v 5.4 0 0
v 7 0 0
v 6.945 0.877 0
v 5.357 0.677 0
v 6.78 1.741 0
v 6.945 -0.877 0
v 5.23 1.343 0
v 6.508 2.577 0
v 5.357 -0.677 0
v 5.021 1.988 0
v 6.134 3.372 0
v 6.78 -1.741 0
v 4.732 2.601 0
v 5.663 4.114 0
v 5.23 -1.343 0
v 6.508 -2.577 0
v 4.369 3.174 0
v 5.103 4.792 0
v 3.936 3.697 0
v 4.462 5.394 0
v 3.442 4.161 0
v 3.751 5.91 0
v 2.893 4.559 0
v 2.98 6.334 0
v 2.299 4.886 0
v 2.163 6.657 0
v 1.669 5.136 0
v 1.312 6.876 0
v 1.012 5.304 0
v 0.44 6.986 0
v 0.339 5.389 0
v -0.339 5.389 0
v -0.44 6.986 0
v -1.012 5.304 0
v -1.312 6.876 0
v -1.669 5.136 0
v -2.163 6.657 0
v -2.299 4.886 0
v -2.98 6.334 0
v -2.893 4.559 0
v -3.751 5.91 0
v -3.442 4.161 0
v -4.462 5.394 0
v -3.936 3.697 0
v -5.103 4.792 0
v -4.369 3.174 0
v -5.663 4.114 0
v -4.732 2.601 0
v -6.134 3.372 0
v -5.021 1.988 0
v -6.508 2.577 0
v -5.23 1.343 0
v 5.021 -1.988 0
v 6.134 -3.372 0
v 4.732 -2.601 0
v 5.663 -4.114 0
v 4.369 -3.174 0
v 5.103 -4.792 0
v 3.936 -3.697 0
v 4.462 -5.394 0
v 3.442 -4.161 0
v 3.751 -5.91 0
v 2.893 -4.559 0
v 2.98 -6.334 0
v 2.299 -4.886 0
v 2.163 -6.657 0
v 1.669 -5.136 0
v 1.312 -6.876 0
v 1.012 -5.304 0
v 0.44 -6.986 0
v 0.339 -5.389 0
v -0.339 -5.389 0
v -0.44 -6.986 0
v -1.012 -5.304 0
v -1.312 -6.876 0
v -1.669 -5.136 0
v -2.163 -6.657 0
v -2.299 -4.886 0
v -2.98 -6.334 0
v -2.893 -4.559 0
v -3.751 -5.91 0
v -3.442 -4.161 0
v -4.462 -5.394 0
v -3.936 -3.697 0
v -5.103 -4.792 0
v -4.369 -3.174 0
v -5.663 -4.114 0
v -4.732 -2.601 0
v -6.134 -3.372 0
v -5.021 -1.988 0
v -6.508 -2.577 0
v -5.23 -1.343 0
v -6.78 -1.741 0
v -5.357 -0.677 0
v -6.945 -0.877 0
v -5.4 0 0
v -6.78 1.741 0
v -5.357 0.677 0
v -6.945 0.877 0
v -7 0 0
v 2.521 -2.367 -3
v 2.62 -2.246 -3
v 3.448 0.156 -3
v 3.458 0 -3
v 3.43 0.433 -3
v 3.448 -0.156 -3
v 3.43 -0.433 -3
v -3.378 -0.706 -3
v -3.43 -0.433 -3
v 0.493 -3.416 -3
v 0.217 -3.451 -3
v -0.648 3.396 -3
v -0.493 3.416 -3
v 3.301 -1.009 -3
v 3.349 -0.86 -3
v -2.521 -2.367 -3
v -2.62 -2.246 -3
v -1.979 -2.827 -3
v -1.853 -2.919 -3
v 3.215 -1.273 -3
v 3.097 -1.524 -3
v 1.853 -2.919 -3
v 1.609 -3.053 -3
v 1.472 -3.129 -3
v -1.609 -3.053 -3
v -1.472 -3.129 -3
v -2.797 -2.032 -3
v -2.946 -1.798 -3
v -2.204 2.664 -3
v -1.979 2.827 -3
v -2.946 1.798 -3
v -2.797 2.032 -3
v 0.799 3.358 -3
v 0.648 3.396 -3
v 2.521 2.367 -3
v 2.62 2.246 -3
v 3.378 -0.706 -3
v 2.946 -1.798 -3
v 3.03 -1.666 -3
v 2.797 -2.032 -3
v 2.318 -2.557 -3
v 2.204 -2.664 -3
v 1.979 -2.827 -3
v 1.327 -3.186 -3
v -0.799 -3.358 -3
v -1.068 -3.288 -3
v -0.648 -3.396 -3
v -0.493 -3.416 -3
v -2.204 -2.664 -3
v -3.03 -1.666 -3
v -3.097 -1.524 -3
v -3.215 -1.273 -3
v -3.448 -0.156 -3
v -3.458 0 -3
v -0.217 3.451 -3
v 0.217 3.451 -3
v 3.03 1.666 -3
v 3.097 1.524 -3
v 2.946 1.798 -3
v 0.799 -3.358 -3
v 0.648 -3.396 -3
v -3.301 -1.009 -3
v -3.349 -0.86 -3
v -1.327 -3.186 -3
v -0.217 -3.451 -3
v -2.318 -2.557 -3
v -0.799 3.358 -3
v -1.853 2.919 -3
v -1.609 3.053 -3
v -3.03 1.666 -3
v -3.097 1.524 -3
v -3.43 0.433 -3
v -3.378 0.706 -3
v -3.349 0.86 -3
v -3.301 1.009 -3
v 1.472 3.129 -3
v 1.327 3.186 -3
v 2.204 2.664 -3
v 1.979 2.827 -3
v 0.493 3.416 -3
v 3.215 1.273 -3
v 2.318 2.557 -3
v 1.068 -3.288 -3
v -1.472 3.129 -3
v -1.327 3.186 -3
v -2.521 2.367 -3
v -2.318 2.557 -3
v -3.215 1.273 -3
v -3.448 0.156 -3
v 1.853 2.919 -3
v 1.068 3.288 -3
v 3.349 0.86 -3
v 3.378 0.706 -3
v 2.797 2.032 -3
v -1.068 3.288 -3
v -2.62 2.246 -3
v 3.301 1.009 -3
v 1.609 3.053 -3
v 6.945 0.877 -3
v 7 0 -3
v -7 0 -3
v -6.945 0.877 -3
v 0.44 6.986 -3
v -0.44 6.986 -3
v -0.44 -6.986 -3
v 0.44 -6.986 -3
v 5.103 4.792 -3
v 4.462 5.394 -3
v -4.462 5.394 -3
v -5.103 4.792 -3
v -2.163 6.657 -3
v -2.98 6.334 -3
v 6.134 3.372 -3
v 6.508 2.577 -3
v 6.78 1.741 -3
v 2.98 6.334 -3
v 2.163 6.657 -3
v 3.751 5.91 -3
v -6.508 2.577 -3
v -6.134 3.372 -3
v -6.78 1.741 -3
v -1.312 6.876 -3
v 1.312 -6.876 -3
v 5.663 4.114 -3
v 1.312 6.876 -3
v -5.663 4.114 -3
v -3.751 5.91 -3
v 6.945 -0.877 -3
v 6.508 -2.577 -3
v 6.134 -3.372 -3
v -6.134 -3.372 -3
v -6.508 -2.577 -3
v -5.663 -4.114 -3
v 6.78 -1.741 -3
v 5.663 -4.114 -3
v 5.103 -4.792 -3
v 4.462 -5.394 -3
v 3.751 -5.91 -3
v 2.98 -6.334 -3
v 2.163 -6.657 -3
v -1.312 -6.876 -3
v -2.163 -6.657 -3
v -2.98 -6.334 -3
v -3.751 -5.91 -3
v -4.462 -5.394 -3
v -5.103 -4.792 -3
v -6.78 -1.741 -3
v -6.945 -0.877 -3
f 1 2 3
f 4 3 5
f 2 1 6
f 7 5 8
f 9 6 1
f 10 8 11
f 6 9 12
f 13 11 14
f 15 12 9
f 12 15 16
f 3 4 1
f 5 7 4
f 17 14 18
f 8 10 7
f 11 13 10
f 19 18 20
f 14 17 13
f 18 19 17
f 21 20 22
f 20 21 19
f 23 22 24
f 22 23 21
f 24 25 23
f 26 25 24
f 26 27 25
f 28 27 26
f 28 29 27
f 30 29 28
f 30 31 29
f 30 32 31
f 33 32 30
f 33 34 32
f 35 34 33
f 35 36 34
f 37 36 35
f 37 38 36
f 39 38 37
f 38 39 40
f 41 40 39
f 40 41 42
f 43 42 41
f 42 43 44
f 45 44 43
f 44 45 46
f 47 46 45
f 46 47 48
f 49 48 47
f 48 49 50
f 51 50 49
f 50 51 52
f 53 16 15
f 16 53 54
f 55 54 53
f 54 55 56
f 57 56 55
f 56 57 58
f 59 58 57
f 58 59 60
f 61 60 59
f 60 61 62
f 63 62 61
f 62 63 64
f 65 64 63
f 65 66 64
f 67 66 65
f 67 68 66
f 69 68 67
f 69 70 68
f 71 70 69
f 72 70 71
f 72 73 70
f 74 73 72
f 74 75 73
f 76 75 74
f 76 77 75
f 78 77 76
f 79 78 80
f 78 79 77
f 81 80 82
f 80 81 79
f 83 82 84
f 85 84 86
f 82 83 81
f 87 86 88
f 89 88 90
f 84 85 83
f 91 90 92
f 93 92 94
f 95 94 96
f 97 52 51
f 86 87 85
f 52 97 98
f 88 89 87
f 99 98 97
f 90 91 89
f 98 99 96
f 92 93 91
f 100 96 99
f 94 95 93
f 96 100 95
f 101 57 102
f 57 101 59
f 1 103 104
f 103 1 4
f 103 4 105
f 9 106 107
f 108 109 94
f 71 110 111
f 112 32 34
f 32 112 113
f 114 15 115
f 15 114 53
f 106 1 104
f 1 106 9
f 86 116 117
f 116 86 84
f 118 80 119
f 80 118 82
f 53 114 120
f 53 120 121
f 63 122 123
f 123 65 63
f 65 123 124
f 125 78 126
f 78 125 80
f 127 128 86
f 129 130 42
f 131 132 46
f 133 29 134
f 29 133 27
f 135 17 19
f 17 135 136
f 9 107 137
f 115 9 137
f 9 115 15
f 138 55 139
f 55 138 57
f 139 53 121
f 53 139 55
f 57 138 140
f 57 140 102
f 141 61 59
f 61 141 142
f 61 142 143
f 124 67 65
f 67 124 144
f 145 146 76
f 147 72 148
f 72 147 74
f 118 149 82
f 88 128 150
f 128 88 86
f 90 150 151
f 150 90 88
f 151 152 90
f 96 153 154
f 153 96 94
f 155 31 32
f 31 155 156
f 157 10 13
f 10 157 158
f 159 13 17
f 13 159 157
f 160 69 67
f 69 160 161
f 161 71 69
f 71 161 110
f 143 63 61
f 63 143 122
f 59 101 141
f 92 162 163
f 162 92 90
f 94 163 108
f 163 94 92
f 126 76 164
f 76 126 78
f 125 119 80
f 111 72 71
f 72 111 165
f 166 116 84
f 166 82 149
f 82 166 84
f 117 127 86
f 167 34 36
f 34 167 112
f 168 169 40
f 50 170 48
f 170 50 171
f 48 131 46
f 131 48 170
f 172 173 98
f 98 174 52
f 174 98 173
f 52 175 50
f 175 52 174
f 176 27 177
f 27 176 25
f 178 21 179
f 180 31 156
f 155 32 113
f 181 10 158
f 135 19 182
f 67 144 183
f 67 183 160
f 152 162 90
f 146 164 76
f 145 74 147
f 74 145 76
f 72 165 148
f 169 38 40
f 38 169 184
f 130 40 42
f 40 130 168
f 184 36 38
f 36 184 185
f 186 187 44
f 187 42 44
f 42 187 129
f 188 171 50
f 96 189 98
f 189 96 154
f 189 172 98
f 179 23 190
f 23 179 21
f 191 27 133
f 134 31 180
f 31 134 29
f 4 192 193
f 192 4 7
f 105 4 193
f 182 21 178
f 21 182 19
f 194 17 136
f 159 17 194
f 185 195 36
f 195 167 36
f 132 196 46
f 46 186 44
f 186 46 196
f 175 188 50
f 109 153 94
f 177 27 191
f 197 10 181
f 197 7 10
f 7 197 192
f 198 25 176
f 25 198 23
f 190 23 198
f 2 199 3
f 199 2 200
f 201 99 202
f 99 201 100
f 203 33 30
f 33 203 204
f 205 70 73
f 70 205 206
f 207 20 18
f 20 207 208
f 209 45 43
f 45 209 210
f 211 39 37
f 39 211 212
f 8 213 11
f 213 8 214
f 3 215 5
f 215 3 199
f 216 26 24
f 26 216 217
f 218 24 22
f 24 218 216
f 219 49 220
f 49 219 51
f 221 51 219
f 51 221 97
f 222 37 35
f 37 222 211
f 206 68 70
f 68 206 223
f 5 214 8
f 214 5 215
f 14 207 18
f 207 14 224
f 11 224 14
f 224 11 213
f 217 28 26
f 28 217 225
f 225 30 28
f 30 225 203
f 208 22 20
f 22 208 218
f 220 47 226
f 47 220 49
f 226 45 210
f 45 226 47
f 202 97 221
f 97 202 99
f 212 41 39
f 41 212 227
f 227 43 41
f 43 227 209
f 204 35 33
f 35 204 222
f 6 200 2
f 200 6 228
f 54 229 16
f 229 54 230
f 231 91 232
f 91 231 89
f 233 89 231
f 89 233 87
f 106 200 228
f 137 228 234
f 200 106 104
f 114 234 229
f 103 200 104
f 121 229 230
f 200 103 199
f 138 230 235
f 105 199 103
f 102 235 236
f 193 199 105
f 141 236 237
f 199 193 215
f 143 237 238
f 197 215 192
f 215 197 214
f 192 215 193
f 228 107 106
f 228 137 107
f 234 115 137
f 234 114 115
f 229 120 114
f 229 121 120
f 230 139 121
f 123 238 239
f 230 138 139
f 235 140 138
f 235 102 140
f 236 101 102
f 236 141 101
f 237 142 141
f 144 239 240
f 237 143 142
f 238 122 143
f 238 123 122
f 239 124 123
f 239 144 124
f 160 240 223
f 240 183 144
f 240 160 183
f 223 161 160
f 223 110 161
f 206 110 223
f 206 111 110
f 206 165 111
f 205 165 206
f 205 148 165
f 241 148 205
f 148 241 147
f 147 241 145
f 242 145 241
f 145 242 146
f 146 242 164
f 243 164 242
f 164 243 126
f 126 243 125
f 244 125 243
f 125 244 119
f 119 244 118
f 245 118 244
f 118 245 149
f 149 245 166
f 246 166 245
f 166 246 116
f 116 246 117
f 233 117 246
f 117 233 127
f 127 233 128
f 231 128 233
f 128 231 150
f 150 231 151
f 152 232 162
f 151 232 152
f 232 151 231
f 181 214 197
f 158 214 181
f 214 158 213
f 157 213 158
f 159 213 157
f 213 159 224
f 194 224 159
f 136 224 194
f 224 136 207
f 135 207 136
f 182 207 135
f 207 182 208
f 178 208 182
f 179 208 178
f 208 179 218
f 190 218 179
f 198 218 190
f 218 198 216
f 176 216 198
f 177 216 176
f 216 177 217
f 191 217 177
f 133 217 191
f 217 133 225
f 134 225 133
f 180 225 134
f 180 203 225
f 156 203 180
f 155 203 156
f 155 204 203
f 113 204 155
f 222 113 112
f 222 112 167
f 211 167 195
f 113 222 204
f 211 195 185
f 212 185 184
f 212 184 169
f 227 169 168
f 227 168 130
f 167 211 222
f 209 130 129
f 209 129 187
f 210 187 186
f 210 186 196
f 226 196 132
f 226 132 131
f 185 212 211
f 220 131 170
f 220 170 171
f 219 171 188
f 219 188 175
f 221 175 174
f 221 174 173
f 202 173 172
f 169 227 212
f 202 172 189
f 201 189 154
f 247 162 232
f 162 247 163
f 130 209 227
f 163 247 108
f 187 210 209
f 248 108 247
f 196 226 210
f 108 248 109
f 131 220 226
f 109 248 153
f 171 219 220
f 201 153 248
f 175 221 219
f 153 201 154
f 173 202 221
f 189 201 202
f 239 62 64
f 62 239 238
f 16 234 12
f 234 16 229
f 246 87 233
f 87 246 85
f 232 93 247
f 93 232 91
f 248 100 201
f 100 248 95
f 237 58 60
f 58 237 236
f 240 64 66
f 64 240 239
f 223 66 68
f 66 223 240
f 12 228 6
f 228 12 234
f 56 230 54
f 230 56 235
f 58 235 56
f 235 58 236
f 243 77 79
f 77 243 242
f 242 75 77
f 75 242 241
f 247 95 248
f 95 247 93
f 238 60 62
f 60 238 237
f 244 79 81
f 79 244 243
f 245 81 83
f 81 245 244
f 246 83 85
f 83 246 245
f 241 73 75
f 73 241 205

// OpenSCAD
$fn = 50;


difference() {
	union() {
		translate(v = [0, 0, -3.0000000000]) {
			cylinder(h = 3, r = 7.0000000000);
		}
	}
	union() {
		translate(v = [0, 0, 0]) {
			rotate(a = [0, 0, 0]) {
				difference() {
					union() {
						#translate(v = [0, 0, -3.0000000000]) {
							cylinder(h = 3, r = 2.6000000000);
						}
						#translate(v = [0, 0, -3.9000000000]) {
							cylinder(h = 3.9000000000, r = 7.0000000000, r1 = 2.8750000000, r2 = 5.4000000000);
						}
						#translate(v = [0, 0, -3.0000000000]) {
							cylinder(h = 3, r = 2.8750000000);
						}
						#translate(v = [0, 0, -3.0000000000]) {
							cylinder(h = 3, r = 2.6000000000);
						}
					}
					union();
				}
			}
		}
	}
}
